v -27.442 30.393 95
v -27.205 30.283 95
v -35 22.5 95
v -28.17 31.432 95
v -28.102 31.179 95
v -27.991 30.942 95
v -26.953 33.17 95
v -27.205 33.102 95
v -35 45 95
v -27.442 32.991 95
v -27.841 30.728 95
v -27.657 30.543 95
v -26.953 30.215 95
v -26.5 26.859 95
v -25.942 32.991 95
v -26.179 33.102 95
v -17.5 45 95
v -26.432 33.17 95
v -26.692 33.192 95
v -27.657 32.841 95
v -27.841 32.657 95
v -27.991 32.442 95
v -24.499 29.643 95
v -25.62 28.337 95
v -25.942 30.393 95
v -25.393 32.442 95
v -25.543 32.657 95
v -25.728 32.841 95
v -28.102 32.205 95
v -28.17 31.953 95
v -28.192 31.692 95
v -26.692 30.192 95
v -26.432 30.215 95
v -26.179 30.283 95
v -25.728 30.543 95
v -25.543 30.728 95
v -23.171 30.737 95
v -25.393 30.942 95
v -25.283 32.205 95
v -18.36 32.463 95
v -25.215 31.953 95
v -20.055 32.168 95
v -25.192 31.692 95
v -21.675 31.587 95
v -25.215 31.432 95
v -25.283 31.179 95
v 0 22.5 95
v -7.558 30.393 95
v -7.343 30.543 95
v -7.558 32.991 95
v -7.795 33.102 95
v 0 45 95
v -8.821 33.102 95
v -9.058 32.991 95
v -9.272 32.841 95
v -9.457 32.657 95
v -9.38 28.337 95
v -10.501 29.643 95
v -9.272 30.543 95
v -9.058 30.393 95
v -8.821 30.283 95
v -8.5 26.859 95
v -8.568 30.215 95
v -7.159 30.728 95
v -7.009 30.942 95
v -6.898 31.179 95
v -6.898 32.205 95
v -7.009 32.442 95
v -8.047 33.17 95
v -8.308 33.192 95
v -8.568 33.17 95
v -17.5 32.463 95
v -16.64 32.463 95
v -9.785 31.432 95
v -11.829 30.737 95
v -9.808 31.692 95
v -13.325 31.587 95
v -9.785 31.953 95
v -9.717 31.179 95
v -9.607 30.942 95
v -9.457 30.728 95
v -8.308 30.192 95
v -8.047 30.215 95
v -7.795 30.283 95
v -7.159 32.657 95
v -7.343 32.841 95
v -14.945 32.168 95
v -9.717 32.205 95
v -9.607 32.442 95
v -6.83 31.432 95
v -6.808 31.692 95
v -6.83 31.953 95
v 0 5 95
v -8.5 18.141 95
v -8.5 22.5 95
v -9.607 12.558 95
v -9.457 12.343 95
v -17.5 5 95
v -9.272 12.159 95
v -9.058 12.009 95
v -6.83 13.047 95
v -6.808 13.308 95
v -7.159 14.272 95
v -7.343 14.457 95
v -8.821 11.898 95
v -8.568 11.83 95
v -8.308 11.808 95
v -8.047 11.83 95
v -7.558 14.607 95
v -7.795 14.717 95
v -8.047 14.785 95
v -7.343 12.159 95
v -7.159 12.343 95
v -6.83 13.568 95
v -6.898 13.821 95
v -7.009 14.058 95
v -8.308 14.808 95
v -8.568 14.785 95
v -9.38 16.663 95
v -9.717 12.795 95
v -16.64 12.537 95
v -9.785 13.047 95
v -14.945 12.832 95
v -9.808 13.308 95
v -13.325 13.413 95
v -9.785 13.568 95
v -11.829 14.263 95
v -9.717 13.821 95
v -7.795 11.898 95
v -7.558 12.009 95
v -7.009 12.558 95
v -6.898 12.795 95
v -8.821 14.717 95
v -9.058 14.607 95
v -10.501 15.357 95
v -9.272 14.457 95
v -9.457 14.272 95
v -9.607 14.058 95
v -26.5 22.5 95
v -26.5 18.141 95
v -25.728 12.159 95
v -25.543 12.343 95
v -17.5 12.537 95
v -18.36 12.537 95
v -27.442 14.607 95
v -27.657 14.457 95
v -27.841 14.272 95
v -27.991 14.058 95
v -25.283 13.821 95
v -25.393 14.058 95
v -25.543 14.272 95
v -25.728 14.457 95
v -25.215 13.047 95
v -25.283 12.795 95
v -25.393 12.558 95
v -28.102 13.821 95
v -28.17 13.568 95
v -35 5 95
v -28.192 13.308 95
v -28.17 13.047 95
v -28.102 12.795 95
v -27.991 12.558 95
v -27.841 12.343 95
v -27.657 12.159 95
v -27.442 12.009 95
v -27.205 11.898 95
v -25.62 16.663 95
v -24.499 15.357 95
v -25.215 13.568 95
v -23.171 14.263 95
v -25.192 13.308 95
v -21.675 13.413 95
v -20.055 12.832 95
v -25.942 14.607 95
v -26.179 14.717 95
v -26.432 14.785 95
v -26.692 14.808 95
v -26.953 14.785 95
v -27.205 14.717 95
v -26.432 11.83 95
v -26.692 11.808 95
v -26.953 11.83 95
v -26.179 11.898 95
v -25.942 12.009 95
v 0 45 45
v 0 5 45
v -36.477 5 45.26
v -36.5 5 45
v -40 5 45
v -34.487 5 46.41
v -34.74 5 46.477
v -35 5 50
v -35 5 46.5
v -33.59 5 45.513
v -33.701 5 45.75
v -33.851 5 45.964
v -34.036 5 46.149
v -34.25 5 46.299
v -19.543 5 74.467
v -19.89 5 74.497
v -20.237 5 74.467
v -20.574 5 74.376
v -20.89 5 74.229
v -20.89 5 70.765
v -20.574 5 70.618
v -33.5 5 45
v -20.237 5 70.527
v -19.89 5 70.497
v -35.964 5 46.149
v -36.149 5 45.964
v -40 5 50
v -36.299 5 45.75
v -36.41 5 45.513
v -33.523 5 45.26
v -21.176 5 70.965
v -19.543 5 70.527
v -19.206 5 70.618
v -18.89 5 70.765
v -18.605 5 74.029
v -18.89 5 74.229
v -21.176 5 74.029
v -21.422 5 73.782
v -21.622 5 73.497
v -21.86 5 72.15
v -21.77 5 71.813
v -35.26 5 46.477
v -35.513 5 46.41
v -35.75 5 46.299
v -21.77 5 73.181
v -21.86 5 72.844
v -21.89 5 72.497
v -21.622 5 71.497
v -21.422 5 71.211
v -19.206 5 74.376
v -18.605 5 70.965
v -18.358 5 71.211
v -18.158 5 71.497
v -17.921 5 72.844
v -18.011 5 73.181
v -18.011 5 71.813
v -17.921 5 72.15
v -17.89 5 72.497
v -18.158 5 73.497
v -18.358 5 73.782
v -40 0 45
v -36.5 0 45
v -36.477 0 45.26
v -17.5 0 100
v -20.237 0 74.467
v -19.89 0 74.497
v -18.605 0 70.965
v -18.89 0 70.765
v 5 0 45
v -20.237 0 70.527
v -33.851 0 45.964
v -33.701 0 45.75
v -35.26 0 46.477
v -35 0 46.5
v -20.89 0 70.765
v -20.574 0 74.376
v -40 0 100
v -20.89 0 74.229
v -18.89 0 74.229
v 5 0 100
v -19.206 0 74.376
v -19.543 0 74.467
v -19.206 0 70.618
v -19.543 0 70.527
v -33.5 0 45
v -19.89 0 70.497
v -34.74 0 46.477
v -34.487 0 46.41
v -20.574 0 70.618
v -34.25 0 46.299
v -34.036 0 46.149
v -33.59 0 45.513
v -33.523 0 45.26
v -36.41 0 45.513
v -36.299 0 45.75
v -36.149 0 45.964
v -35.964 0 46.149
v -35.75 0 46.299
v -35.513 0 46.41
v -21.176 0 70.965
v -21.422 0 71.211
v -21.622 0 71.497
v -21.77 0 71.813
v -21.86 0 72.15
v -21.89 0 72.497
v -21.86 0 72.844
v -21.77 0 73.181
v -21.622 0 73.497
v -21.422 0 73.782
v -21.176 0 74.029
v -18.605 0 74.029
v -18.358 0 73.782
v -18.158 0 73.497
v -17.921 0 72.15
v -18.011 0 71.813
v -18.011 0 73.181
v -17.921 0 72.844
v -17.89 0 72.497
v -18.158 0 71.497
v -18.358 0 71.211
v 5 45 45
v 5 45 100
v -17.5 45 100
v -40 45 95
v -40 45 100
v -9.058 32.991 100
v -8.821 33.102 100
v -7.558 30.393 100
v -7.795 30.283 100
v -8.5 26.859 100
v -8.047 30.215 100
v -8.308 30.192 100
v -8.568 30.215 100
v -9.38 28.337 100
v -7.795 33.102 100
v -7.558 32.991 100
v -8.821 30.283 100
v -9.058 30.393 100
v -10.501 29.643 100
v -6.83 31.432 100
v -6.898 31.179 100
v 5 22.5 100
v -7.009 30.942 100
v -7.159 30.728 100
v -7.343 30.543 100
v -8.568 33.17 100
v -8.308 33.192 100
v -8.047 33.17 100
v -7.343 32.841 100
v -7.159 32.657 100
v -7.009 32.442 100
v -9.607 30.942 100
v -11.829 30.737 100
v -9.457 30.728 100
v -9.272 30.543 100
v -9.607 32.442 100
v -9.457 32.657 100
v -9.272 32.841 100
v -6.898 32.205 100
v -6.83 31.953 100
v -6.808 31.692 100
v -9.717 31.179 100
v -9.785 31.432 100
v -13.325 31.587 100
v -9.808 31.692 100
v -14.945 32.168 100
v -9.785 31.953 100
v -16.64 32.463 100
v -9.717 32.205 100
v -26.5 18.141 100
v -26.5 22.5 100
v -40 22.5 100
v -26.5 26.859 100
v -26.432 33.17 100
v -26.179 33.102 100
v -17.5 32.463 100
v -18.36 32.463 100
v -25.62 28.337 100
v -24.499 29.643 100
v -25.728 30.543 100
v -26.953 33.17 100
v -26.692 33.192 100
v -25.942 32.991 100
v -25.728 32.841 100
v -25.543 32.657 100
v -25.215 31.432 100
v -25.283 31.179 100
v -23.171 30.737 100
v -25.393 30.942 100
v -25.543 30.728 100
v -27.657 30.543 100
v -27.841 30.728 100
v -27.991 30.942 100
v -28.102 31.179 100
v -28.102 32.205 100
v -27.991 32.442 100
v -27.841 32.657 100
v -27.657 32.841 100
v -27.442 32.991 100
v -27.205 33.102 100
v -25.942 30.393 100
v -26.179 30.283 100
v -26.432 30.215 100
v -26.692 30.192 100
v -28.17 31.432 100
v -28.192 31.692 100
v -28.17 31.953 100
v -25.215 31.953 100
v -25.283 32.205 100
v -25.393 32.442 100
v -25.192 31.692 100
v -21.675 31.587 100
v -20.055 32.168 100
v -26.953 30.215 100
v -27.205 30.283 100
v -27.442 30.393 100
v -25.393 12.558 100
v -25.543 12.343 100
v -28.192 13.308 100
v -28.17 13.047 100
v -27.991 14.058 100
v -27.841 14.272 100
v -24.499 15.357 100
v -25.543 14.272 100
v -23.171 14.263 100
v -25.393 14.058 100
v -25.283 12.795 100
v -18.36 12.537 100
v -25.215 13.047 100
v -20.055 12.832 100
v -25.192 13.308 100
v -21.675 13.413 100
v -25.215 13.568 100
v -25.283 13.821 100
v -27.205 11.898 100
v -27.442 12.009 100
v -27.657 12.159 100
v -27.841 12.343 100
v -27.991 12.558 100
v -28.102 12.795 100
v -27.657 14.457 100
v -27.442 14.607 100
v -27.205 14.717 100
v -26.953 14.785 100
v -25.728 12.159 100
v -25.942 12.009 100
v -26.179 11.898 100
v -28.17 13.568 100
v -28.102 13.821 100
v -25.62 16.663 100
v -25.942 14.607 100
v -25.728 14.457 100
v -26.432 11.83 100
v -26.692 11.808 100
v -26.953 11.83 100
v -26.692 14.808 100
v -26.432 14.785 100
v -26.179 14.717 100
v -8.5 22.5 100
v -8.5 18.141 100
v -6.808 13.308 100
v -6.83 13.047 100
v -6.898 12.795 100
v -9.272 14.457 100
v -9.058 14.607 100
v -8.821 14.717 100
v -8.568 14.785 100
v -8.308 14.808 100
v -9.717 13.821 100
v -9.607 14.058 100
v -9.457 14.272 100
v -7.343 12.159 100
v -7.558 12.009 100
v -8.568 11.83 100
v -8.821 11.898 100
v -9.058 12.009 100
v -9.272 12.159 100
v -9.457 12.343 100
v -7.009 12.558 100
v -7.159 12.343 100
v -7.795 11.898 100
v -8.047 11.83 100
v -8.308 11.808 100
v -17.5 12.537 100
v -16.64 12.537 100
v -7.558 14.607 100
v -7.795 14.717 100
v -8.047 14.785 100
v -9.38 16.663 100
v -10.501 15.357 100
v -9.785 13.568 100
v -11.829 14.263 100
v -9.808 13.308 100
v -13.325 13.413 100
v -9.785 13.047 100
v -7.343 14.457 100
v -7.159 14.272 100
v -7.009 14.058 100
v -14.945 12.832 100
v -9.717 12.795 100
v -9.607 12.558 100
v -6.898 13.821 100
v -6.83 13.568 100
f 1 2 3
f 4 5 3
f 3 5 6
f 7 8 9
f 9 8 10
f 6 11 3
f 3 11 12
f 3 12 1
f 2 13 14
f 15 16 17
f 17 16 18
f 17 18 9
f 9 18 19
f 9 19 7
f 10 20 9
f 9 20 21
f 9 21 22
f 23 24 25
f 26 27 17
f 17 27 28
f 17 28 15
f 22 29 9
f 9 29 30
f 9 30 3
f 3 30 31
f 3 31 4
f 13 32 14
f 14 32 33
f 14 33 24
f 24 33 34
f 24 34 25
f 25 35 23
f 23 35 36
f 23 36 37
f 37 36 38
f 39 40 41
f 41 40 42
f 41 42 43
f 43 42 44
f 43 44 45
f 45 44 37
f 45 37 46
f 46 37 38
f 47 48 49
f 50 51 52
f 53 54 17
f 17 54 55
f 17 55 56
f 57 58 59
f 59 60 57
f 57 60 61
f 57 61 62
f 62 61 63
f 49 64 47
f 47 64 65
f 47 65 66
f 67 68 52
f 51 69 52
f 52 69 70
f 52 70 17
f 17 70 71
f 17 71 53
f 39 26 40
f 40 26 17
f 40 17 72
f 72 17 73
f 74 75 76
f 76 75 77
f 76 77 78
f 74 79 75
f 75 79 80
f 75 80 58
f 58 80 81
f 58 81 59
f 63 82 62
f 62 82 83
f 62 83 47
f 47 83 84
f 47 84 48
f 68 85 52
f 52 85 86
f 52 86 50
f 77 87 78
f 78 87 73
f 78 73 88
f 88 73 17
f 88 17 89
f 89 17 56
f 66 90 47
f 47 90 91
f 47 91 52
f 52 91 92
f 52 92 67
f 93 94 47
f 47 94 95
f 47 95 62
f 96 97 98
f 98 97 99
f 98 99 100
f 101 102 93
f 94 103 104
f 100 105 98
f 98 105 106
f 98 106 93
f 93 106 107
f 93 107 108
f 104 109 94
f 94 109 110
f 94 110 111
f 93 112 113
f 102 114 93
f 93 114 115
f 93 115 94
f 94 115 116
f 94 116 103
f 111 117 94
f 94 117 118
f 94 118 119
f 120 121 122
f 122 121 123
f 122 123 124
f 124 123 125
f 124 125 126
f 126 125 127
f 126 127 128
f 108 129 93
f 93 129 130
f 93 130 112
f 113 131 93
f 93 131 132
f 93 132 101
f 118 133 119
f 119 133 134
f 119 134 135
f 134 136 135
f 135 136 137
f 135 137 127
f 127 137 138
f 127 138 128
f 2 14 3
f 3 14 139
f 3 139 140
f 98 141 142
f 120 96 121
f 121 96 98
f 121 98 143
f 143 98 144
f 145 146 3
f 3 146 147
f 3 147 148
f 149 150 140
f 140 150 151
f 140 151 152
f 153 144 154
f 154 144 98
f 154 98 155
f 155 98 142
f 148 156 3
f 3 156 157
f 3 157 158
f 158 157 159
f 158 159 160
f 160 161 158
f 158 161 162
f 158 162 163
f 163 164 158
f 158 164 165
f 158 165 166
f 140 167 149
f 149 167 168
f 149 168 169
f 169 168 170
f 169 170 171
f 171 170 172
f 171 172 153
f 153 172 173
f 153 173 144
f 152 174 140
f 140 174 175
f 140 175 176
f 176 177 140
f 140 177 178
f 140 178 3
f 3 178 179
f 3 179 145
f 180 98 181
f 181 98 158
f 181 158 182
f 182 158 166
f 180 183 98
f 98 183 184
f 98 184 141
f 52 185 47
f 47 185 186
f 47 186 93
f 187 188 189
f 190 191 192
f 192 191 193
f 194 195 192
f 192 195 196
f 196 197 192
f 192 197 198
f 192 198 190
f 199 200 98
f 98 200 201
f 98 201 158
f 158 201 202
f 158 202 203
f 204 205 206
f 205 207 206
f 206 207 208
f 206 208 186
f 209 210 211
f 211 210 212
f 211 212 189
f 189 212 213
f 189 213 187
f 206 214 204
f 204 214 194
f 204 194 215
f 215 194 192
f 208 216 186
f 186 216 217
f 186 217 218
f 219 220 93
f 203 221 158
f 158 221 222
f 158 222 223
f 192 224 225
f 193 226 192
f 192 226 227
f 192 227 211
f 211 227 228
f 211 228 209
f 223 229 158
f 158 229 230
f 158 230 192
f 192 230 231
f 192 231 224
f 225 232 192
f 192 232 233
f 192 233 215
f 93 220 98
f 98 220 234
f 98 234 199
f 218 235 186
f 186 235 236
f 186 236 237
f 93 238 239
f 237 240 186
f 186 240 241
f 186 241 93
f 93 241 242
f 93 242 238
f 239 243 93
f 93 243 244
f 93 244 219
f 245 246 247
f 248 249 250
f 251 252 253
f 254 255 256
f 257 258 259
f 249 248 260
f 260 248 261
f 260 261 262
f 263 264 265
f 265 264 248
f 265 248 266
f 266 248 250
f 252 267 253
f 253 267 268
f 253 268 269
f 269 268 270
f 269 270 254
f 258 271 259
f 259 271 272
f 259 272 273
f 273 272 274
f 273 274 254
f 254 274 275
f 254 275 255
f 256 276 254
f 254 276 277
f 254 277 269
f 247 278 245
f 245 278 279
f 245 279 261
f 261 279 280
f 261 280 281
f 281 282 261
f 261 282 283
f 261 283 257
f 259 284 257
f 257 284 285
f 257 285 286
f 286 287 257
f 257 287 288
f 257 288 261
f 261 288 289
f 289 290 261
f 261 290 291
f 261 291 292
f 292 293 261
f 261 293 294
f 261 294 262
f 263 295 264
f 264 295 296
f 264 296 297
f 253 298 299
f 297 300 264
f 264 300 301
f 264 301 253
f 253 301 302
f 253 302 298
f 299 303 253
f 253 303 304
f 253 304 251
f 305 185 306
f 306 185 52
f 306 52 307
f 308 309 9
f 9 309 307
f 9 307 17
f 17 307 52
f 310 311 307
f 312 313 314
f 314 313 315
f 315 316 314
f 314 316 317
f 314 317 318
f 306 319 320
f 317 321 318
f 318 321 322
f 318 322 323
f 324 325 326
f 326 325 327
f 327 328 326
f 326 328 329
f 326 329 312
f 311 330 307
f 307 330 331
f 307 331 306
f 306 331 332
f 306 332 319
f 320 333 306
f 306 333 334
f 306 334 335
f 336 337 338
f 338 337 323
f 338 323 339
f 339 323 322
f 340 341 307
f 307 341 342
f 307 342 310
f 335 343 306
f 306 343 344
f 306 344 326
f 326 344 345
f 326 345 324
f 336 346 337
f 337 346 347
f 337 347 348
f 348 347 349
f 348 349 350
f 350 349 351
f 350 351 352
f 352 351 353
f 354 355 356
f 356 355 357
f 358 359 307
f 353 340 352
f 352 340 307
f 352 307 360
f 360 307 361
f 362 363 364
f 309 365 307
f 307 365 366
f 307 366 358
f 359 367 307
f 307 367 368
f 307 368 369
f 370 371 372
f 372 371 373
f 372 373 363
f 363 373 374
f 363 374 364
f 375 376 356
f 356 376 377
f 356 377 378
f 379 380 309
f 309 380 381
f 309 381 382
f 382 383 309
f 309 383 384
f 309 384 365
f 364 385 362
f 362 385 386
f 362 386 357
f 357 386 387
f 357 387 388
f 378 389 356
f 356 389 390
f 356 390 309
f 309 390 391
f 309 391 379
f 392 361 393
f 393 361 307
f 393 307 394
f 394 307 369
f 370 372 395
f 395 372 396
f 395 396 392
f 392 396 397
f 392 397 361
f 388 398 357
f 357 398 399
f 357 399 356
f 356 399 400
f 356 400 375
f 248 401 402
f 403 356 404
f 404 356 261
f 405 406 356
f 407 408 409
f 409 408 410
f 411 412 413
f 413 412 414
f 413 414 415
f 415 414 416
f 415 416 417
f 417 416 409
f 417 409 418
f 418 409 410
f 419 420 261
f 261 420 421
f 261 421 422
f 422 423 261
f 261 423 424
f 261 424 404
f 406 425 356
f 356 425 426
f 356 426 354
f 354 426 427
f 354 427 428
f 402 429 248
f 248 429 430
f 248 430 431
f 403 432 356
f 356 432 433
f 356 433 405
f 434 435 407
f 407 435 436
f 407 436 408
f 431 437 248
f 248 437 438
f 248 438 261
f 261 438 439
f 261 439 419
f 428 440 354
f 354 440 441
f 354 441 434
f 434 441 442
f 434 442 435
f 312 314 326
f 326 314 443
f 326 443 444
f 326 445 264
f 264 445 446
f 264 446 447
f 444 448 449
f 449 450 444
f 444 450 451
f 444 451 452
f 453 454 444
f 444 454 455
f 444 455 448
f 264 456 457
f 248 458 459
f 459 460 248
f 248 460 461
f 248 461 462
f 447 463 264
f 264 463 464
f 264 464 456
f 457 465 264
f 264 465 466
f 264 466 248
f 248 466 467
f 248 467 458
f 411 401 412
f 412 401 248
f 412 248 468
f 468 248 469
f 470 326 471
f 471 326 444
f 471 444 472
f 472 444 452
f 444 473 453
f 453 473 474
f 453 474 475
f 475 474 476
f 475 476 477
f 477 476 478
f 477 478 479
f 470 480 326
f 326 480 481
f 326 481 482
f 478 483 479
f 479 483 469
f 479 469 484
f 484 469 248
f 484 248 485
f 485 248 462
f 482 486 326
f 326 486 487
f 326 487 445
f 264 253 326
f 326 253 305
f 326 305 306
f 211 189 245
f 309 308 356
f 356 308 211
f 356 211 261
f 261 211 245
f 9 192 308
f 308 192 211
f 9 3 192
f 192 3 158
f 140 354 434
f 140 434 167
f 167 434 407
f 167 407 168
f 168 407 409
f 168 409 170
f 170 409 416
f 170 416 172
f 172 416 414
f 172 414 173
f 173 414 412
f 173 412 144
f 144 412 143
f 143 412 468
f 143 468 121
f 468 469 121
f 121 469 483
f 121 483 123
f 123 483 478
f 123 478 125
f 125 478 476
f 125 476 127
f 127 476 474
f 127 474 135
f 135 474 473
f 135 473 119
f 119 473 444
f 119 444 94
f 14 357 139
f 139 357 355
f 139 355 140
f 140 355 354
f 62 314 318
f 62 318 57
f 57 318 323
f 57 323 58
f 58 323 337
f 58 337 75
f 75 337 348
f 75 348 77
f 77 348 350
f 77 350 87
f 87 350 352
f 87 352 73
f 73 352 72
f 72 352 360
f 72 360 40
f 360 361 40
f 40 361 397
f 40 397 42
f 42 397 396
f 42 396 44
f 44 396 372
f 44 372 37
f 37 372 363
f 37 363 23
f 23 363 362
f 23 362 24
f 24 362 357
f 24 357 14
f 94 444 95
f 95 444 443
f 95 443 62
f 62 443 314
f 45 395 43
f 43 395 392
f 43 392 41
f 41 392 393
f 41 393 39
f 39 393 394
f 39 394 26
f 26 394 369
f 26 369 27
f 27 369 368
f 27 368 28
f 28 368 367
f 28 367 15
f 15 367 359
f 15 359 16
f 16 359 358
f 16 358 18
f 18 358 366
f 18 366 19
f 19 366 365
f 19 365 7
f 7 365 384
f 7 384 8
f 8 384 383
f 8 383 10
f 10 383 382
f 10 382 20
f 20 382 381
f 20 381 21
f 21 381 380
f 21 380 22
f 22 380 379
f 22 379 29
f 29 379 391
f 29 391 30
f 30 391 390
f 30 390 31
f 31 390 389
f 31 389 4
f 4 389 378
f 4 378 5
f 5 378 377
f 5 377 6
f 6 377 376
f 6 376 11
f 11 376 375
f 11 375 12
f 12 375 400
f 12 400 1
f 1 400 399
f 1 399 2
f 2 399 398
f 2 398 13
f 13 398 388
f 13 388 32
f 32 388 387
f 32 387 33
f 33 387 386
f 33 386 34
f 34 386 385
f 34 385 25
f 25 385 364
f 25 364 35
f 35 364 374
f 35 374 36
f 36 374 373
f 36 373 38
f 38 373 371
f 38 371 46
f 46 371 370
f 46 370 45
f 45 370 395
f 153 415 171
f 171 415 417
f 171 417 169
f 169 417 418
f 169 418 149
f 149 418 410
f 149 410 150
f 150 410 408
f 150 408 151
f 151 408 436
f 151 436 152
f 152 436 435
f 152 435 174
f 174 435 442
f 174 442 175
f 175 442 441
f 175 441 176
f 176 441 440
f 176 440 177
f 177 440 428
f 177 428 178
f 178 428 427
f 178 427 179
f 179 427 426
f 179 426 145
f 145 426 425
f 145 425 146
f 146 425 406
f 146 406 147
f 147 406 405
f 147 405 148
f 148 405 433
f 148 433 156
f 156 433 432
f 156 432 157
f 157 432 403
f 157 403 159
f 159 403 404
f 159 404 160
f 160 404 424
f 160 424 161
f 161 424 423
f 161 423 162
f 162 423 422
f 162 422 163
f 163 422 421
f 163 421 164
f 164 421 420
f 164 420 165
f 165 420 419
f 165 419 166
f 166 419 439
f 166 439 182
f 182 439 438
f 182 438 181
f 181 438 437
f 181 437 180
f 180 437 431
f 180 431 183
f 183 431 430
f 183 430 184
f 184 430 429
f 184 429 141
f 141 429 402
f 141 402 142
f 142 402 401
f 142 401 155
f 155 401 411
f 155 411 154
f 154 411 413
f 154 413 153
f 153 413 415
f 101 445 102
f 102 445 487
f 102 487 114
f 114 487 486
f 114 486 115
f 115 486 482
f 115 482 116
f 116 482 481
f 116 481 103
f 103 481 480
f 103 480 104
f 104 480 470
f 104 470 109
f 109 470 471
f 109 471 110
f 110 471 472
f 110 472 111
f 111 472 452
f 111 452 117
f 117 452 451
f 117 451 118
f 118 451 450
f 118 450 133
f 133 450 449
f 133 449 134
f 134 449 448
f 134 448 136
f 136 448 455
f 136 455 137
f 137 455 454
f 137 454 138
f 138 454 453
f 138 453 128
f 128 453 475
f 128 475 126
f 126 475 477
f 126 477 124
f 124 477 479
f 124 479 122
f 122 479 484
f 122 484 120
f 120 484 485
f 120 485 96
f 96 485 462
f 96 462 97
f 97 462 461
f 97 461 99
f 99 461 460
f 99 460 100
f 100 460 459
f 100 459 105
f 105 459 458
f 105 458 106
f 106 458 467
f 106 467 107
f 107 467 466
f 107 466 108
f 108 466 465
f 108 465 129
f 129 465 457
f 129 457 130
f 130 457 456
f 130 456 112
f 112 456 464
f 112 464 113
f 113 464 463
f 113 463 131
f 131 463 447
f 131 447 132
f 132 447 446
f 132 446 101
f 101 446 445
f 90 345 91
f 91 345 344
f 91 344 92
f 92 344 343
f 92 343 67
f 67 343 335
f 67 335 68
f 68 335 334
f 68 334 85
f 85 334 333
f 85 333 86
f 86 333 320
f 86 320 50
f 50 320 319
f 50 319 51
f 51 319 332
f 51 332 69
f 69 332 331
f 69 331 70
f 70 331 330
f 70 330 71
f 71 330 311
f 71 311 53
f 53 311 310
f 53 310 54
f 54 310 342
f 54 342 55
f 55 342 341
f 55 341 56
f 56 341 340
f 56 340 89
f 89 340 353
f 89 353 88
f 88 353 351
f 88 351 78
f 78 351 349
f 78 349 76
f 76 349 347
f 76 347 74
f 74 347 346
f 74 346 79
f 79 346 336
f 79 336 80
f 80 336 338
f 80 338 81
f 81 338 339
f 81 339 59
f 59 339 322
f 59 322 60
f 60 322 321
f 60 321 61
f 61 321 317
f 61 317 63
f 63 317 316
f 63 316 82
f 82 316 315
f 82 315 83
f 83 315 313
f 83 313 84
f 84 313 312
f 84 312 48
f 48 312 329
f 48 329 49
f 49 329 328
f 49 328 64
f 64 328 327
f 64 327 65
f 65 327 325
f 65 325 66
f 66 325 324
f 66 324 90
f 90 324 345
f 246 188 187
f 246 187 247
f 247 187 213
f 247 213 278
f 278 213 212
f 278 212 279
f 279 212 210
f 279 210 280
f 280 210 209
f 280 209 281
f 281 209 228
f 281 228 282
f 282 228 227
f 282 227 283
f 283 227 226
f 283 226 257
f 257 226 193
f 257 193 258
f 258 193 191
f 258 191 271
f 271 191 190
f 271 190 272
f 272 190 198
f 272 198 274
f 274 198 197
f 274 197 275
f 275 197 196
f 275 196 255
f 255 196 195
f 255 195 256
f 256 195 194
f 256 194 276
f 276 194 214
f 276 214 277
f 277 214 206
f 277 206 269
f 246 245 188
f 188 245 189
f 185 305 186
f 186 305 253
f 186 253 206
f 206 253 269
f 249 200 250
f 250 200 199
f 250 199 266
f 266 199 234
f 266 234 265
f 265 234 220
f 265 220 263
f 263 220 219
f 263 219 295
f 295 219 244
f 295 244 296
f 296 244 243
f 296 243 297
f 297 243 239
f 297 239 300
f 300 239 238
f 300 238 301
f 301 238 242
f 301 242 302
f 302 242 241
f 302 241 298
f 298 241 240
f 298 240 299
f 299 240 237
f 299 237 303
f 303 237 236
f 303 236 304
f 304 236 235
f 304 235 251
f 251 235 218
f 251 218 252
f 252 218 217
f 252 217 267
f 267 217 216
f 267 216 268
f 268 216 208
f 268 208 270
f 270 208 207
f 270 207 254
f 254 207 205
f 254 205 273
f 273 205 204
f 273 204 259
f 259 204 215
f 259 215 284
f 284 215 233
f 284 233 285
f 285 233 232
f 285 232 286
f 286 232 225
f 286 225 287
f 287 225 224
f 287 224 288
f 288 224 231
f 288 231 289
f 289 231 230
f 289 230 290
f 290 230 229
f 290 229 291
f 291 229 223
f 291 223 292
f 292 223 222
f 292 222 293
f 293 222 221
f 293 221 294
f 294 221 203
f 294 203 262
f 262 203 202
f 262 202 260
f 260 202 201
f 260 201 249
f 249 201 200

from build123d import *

# Parameters (mm, degrees)
ESQUISSE1_W             = 45
ESQUISSE1_H             = 45
ESQUISSE1_R             = 1.5
EXTRUSION1_DEPTH        = 5
ESQUISSE2_W             = 45
ESQUISSE2_H             = 5
EXTRUSION2_DEPTH        = 95
EXTRUSION3_DEPTH        = 5
ESQUISSE4_W             = 95
ESQUISSE4_H             = 40
EXTRUSION4_DEPTH        = 5
ESQUISSE5_W             = 100
ESQUISSE5_H             = 5
EXTRUSION5_DEPTH        = 40
ESQUISSE6_W             = 40
ESQUISSE6_H             = 40
EXTRUSION6_DEPTH        = 5
EXTRUSION7_DEPTH        = 5
ENL_V_MAT_EXTRU_1_REACH = 102
ESQUISSE8_R             = 1.5
ENL_V_MAT_EXTRU_2_REACH = 7
ESQUISSE9_R             = 1.5
ESQUISSE10_W            = 88.935907412
ESQUISSE10_H            = 49.014601793
ENL_V_MAT_EXTRU_3_DEPTH = 45
ESQUISSE11_W            = 62.142779394
ESQUISSE11_H            = 38.028527447
ENL_V_MAT_EXTRU_4_DEPTH = 40
ENL_V_MAT_EXTRU_5_REACH = 7
ESQUISSE12_R            = 2


with BuildPart() as part:
    # Esquisse1 → Extrusion1 (new body)
    with BuildSketch(Plane.XY):
        with Locations((22.5, 22.5)):
            Rectangle(ESQUISSE1_W, ESQUISSE1_H)
        with Locations((31.692388155, 31.692388155)):
            Circle(ESQUISSE1_R, mode=Mode.SUBTRACT)
        with Locations((31.692388155, 13.307611845)):
            Circle(ESQUISSE1_R, mode=Mode.SUBTRACT)
        with Locations((13.307611845, 13.307611845)):
            Circle(ESQUISSE1_R, mode=Mode.SUBTRACT)
        with Locations((13.307611845, 31.692388155)):
            Circle(ESQUISSE1_R, mode=Mode.SUBTRACT)
        with BuildLine():
            Line((13.5, 26.858898944), (13.5, 18.141101056))
            ThreePointArc((13.5, 18.141101056), (22.5, 12.5), (31.5, 18.141101056))
            Line((31.5, 18.141101056), (31.5, 26.858898944))
            ThreePointArc((31.5, 26.858898944), (22.5, 32.5), (13.5, 26.858898944))
        make_face(mode=Mode.SUBTRACT)
    extrude(amount=EXTRUSION1_DEPTH)

    # Esquisse2 → Extrusion2 (add)
    with BuildSketch(Plane.XY.offset(5)):
        with Locations((22.5, 2.5)):
            Rectangle(ESQUISSE2_W, ESQUISSE2_H)
    extrude(amount=EXTRUSION2_DEPTH)

    # Esquisse3 → Extrusion3 (add)
    with BuildSketch(Plane(origin=(45, 0, 0), x_dir=(0, 0, -1), z_dir=(1, 0, 0))):
        Polygon((-5, 5), (-5, 45), (-50, 5), align=None)
    extrude(amount=-EXTRUSION3_DEPTH)

    # Esquisse4 → Extrusion4 (add)
    with BuildSketch(Plane.ZY):
        with Locations((52.5, 25)):
            Rectangle(ESQUISSE4_W, ESQUISSE4_H)
    extrude(amount=-EXTRUSION4_DEPTH)

    # Esquisse5 → Extrusion5 (add)
    with BuildSketch(Plane.ZY):
        with Locations((50, 2.5)):
            Rectangle(ESQUISSE5_W, ESQUISSE5_H)
    extrude(amount=EXTRUSION5_DEPTH)

    # Esquisse6 → Extrusion6 (add)
    with BuildSketch(Plane.XY.offset(100)):
        with Locations((-20, 25)):
            Rectangle(ESQUISSE6_W, ESQUISSE6_H)
    extrude(amount=-EXTRUSION6_DEPTH)

    # Esquisse7 → Extrusion7 (add)
    with BuildSketch(Plane.ZY.offset(40)):
        Polygon((95, 5), (95, 45), (50, 5), align=None)
    extrude(amount=-EXTRUSION7_DEPTH)

    # Esquisse8 → Enlèv. mat.-Extru.1 (cut, up to next)
    with BuildSketch(Plane.XY.offset(100), mode=Mode.PRIVATE) as enl_v_mat_extru_1_sk1:
        with Locations((-26.692388155, 31.692388155)):
            Circle(ESQUISSE8_R)
    enl_v_mat_extru_1_tool1 = extrude(enl_v_mat_extru_1_sk1.sketch, amount=-ENL_V_MAT_EXTRU_1_REACH, mode=Mode.PRIVATE) & part.part
    add(enl_v_mat_extru_1_tool1.solids().sort_by_distance((-26.692388, 31.692388, 100))[0], mode=Mode.SUBTRACT)
    # Esquisse8 → Enlèv. mat.-Extru.1 (cut, up to next)
    with BuildSketch(Plane.XY.offset(100), mode=Mode.PRIVATE) as enl_v_mat_extru_1_sk2:
        with Locations((-26.692388155, 13.307611845)):
            Circle(ESQUISSE8_R)
    enl_v_mat_extru_1_tool2 = extrude(enl_v_mat_extru_1_sk2.sketch, amount=-ENL_V_MAT_EXTRU_1_REACH, mode=Mode.PRIVATE) & part.part
    add(enl_v_mat_extru_1_tool2.solids().sort_by_distance((-26.692388, 13.307612, 100))[0], mode=Mode.SUBTRACT)
    # Esquisse8 → Enlèv. mat.-Extru.1 (cut, up to next)
    with BuildSketch(Plane.XY.offset(100), mode=Mode.PRIVATE) as enl_v_mat_extru_1_sk3:
        with Locations((-8.307611845, 13.307611845)):
            Circle(ESQUISSE8_R)
    enl_v_mat_extru_1_tool3 = extrude(enl_v_mat_extru_1_sk3.sketch, amount=-ENL_V_MAT_EXTRU_1_REACH, mode=Mode.PRIVATE) & part.part
    add(enl_v_mat_extru_1_tool3.solids().sort_by_distance((-8.307612, 13.307612, 100))[0], mode=Mode.SUBTRACT)
    # Esquisse8 → Enlèv. mat.-Extru.1 (cut, up to next)
    with BuildSketch(Plane.XY.offset(100), mode=Mode.PRIVATE) as enl_v_mat_extru_1_sk4:
        with Locations((-8.307611845, 31.692388155)):
            Circle(ESQUISSE8_R)
    enl_v_mat_extru_1_tool4 = extrude(enl_v_mat_extru_1_sk4.sketch, amount=-ENL_V_MAT_EXTRU_1_REACH, mode=Mode.PRIVATE) & part.part
    add(enl_v_mat_extru_1_tool4.solids().sort_by_distance((-8.307612, 31.692388, 100))[0], mode=Mode.SUBTRACT)
    # Esquisse8 → Enlèv. mat.-Extru.1 (cut, up to next)
    with BuildSketch(Plane.XY.offset(100), mode=Mode.PRIVATE) as enl_v_mat_extru_1_sk5:
        with BuildLine():
            Line((-26.5, 18.141101056), (-26.5, 26.858898944))
            ThreePointArc((-26.5, 26.858898944), (-17.5, 32.5), (-8.5, 26.858898944))
            Line((-8.5, 26.858898944), (-8.5, 18.141101056))
            ThreePointArc((-8.5, 18.141101056), (-17.5, 12.5), (-26.5, 18.141101056))
        make_face()
    enl_v_mat_extru_1_tool5 = extrude(enl_v_mat_extru_1_sk5.sketch, amount=-ENL_V_MAT_EXTRU_1_REACH, mode=Mode.PRIVATE) & part.part
    add(enl_v_mat_extru_1_tool5.solids().sort_by_distance((-17.5, 22.5, 100))[0], mode=Mode.SUBTRACT)

    # Esquisse9 → Enlèv. mat.-Extru.2 (cut, up to next)
    with BuildSketch(Plane(origin=(0, 5, 0), x_dir=(-1, 0, 0), z_dir=(0, 1, 0)), mode=Mode.PRIVATE) as enl_v_mat_extru_2_sk1:
        with Locations((-40, 95)):
            Circle(ESQUISSE9_R)
    enl_v_mat_extru_2_tool1 = extrude(enl_v_mat_extru_2_sk1.sketch, amount=-ENL_V_MAT_EXTRU_2_REACH, mode=Mode.PRIVATE) & part.part
    add(enl_v_mat_extru_2_tool1.solids().sort_by_distance((40, 5, 95))[0], mode=Mode.SUBTRACT)
    # Esquisse9 → Enlèv. mat.-Extru.2 (cut, up to next)
    with BuildSketch(Plane(origin=(0, 5, 0), x_dir=(-1, 0, 0), z_dir=(0, 1, 0)), mode=Mode.PRIVATE) as enl_v_mat_extru_2_sk2:
        with Locations((-10, 95)):
            Circle(ESQUISSE9_R)
    enl_v_mat_extru_2_tool2 = extrude(enl_v_mat_extru_2_sk2.sketch, amount=-ENL_V_MAT_EXTRU_2_REACH, mode=Mode.PRIVATE) & part.part
    add(enl_v_mat_extru_2_tool2.solids().sort_by_distance((10, 5, 95))[0], mode=Mode.SUBTRACT)
    # Esquisse9 → Enlèv. mat.-Extru.2 (cut, up to next)
    with BuildSketch(Plane(origin=(0, 5, 0), x_dir=(-1, 0, 0), z_dir=(0, 1, 0)), mode=Mode.PRIVATE) as enl_v_mat_extru_2_sk3:
        with Locations((35, 5)):
            Circle(ESQUISSE9_R)
    enl_v_mat_extru_2_tool3 = extrude(enl_v_mat_extru_2_sk3.sketch, amount=-ENL_V_MAT_EXTRU_2_REACH, mode=Mode.PRIVATE) & part.part
    add(enl_v_mat_extru_2_tool3.solids().sort_by_distance((-35, 5, 5))[0], mode=Mode.SUBTRACT)
    # Esquisse9 → Enlèv. mat.-Extru.2 (cut, up to next)
    with BuildSketch(Plane(origin=(0, 5, 0), x_dir=(-1, 0, 0), z_dir=(0, 1, 0)), mode=Mode.PRIVATE) as enl_v_mat_extru_2_sk4:
        with Locations((5, 5)):
            Circle(ESQUISSE9_R)
    enl_v_mat_extru_2_tool4 = extrude(enl_v_mat_extru_2_sk4.sketch, amount=-ENL_V_MAT_EXTRU_2_REACH, mode=Mode.PRIVATE) & part.part
    add(enl_v_mat_extru_2_tool4.solids().sort_by_distance((-5, 5, 5))[0], mode=Mode.SUBTRACT)
    # Esquisse9 → Enlèv. mat.-Extru.2 (cut, up to next)
    with BuildSketch(Plane(origin=(0, 5, 0), x_dir=(-1, 0, 0), z_dir=(0, 1, 0)), mode=Mode.PRIVATE) as enl_v_mat_extru_2_sk5:
        with Locations((-40, 55)):
            Circle(ESQUISSE9_R)
    enl_v_mat_extru_2_tool5 = extrude(enl_v_mat_extru_2_sk5.sketch, amount=-ENL_V_MAT_EXTRU_2_REACH, mode=Mode.PRIVATE) & part.part
    add(enl_v_mat_extru_2_tool5.solids().sort_by_distance((40, 5, 55))[0], mode=Mode.SUBTRACT)
    # Esquisse9 → Enlèv. mat.-Extru.2 (cut, up to next)
    with BuildSketch(Plane(origin=(0, 5, 0), x_dir=(-1, 0, 0), z_dir=(0, 1, 0)), mode=Mode.PRIVATE) as enl_v_mat_extru_2_sk6:
        with Locations((35, 45)):
            Circle(ESQUISSE9_R)
    enl_v_mat_extru_2_tool6 = extrude(enl_v_mat_extru_2_sk6.sketch, amount=-ENL_V_MAT_EXTRU_2_REACH, mode=Mode.PRIVATE) & part.part
    add(enl_v_mat_extru_2_tool6.solids().sort_by_distance((-35, 5, 45))[0], mode=Mode.SUBTRACT)

    # Esquisse10 → Enlèv. mat.-Extru.3 (cut)
    with BuildSketch(Plane(origin=(0, 0, 0), x_dir=(-1, 0, 0), z_dir=(0, 0, -1))):
        with Locations((-0.532046294, 24.507300897)):
            Rectangle(ESQUISSE10_W, ESQUISSE10_H)
    extrude(amount=-ENL_V_MAT_EXTRU_3_DEPTH, mode=Mode.SUBTRACT)

    # Esquisse11 → Enlèv. mat.-Extru.4 (cut)
    with BuildSketch(Plane(origin=(45, 0, 0), x_dir=(0, 0, -1), z_dir=(1, 0, 0))):
        with Locations((-68.928610303, 19.014263724)):
            Rectangle(ESQUISSE11_W, ESQUISSE11_H)
    extrude(amount=-ENL_V_MAT_EXTRU_4_DEPTH, mode=Mode.SUBTRACT)

    # Esquisse12 → Enlèv. mat.-Extru.5 (cut, up to next)
    with BuildSketch(Plane(origin=(0, 5, 0), x_dir=(-1, 0, 0), z_dir=(0, 1, 0)), mode=Mode.PRIVATE) as enl_v_mat_extru_5_sk1:
        with Locations((19.890130801, 72.49689605)):
            Circle(ESQUISSE12_R)
    enl_v_mat_extru_5_tool1 = extrude(enl_v_mat_extru_5_sk1.sketch, amount=-ENL_V_MAT_EXTRU_5_REACH, mode=Mode.PRIVATE) & part.part
    add(enl_v_mat_extru_5_tool1.solids().sort_by_distance((-19.890131, 5, 72.496896))[0], mode=Mode.SUBTRACT)


solid = part.part
